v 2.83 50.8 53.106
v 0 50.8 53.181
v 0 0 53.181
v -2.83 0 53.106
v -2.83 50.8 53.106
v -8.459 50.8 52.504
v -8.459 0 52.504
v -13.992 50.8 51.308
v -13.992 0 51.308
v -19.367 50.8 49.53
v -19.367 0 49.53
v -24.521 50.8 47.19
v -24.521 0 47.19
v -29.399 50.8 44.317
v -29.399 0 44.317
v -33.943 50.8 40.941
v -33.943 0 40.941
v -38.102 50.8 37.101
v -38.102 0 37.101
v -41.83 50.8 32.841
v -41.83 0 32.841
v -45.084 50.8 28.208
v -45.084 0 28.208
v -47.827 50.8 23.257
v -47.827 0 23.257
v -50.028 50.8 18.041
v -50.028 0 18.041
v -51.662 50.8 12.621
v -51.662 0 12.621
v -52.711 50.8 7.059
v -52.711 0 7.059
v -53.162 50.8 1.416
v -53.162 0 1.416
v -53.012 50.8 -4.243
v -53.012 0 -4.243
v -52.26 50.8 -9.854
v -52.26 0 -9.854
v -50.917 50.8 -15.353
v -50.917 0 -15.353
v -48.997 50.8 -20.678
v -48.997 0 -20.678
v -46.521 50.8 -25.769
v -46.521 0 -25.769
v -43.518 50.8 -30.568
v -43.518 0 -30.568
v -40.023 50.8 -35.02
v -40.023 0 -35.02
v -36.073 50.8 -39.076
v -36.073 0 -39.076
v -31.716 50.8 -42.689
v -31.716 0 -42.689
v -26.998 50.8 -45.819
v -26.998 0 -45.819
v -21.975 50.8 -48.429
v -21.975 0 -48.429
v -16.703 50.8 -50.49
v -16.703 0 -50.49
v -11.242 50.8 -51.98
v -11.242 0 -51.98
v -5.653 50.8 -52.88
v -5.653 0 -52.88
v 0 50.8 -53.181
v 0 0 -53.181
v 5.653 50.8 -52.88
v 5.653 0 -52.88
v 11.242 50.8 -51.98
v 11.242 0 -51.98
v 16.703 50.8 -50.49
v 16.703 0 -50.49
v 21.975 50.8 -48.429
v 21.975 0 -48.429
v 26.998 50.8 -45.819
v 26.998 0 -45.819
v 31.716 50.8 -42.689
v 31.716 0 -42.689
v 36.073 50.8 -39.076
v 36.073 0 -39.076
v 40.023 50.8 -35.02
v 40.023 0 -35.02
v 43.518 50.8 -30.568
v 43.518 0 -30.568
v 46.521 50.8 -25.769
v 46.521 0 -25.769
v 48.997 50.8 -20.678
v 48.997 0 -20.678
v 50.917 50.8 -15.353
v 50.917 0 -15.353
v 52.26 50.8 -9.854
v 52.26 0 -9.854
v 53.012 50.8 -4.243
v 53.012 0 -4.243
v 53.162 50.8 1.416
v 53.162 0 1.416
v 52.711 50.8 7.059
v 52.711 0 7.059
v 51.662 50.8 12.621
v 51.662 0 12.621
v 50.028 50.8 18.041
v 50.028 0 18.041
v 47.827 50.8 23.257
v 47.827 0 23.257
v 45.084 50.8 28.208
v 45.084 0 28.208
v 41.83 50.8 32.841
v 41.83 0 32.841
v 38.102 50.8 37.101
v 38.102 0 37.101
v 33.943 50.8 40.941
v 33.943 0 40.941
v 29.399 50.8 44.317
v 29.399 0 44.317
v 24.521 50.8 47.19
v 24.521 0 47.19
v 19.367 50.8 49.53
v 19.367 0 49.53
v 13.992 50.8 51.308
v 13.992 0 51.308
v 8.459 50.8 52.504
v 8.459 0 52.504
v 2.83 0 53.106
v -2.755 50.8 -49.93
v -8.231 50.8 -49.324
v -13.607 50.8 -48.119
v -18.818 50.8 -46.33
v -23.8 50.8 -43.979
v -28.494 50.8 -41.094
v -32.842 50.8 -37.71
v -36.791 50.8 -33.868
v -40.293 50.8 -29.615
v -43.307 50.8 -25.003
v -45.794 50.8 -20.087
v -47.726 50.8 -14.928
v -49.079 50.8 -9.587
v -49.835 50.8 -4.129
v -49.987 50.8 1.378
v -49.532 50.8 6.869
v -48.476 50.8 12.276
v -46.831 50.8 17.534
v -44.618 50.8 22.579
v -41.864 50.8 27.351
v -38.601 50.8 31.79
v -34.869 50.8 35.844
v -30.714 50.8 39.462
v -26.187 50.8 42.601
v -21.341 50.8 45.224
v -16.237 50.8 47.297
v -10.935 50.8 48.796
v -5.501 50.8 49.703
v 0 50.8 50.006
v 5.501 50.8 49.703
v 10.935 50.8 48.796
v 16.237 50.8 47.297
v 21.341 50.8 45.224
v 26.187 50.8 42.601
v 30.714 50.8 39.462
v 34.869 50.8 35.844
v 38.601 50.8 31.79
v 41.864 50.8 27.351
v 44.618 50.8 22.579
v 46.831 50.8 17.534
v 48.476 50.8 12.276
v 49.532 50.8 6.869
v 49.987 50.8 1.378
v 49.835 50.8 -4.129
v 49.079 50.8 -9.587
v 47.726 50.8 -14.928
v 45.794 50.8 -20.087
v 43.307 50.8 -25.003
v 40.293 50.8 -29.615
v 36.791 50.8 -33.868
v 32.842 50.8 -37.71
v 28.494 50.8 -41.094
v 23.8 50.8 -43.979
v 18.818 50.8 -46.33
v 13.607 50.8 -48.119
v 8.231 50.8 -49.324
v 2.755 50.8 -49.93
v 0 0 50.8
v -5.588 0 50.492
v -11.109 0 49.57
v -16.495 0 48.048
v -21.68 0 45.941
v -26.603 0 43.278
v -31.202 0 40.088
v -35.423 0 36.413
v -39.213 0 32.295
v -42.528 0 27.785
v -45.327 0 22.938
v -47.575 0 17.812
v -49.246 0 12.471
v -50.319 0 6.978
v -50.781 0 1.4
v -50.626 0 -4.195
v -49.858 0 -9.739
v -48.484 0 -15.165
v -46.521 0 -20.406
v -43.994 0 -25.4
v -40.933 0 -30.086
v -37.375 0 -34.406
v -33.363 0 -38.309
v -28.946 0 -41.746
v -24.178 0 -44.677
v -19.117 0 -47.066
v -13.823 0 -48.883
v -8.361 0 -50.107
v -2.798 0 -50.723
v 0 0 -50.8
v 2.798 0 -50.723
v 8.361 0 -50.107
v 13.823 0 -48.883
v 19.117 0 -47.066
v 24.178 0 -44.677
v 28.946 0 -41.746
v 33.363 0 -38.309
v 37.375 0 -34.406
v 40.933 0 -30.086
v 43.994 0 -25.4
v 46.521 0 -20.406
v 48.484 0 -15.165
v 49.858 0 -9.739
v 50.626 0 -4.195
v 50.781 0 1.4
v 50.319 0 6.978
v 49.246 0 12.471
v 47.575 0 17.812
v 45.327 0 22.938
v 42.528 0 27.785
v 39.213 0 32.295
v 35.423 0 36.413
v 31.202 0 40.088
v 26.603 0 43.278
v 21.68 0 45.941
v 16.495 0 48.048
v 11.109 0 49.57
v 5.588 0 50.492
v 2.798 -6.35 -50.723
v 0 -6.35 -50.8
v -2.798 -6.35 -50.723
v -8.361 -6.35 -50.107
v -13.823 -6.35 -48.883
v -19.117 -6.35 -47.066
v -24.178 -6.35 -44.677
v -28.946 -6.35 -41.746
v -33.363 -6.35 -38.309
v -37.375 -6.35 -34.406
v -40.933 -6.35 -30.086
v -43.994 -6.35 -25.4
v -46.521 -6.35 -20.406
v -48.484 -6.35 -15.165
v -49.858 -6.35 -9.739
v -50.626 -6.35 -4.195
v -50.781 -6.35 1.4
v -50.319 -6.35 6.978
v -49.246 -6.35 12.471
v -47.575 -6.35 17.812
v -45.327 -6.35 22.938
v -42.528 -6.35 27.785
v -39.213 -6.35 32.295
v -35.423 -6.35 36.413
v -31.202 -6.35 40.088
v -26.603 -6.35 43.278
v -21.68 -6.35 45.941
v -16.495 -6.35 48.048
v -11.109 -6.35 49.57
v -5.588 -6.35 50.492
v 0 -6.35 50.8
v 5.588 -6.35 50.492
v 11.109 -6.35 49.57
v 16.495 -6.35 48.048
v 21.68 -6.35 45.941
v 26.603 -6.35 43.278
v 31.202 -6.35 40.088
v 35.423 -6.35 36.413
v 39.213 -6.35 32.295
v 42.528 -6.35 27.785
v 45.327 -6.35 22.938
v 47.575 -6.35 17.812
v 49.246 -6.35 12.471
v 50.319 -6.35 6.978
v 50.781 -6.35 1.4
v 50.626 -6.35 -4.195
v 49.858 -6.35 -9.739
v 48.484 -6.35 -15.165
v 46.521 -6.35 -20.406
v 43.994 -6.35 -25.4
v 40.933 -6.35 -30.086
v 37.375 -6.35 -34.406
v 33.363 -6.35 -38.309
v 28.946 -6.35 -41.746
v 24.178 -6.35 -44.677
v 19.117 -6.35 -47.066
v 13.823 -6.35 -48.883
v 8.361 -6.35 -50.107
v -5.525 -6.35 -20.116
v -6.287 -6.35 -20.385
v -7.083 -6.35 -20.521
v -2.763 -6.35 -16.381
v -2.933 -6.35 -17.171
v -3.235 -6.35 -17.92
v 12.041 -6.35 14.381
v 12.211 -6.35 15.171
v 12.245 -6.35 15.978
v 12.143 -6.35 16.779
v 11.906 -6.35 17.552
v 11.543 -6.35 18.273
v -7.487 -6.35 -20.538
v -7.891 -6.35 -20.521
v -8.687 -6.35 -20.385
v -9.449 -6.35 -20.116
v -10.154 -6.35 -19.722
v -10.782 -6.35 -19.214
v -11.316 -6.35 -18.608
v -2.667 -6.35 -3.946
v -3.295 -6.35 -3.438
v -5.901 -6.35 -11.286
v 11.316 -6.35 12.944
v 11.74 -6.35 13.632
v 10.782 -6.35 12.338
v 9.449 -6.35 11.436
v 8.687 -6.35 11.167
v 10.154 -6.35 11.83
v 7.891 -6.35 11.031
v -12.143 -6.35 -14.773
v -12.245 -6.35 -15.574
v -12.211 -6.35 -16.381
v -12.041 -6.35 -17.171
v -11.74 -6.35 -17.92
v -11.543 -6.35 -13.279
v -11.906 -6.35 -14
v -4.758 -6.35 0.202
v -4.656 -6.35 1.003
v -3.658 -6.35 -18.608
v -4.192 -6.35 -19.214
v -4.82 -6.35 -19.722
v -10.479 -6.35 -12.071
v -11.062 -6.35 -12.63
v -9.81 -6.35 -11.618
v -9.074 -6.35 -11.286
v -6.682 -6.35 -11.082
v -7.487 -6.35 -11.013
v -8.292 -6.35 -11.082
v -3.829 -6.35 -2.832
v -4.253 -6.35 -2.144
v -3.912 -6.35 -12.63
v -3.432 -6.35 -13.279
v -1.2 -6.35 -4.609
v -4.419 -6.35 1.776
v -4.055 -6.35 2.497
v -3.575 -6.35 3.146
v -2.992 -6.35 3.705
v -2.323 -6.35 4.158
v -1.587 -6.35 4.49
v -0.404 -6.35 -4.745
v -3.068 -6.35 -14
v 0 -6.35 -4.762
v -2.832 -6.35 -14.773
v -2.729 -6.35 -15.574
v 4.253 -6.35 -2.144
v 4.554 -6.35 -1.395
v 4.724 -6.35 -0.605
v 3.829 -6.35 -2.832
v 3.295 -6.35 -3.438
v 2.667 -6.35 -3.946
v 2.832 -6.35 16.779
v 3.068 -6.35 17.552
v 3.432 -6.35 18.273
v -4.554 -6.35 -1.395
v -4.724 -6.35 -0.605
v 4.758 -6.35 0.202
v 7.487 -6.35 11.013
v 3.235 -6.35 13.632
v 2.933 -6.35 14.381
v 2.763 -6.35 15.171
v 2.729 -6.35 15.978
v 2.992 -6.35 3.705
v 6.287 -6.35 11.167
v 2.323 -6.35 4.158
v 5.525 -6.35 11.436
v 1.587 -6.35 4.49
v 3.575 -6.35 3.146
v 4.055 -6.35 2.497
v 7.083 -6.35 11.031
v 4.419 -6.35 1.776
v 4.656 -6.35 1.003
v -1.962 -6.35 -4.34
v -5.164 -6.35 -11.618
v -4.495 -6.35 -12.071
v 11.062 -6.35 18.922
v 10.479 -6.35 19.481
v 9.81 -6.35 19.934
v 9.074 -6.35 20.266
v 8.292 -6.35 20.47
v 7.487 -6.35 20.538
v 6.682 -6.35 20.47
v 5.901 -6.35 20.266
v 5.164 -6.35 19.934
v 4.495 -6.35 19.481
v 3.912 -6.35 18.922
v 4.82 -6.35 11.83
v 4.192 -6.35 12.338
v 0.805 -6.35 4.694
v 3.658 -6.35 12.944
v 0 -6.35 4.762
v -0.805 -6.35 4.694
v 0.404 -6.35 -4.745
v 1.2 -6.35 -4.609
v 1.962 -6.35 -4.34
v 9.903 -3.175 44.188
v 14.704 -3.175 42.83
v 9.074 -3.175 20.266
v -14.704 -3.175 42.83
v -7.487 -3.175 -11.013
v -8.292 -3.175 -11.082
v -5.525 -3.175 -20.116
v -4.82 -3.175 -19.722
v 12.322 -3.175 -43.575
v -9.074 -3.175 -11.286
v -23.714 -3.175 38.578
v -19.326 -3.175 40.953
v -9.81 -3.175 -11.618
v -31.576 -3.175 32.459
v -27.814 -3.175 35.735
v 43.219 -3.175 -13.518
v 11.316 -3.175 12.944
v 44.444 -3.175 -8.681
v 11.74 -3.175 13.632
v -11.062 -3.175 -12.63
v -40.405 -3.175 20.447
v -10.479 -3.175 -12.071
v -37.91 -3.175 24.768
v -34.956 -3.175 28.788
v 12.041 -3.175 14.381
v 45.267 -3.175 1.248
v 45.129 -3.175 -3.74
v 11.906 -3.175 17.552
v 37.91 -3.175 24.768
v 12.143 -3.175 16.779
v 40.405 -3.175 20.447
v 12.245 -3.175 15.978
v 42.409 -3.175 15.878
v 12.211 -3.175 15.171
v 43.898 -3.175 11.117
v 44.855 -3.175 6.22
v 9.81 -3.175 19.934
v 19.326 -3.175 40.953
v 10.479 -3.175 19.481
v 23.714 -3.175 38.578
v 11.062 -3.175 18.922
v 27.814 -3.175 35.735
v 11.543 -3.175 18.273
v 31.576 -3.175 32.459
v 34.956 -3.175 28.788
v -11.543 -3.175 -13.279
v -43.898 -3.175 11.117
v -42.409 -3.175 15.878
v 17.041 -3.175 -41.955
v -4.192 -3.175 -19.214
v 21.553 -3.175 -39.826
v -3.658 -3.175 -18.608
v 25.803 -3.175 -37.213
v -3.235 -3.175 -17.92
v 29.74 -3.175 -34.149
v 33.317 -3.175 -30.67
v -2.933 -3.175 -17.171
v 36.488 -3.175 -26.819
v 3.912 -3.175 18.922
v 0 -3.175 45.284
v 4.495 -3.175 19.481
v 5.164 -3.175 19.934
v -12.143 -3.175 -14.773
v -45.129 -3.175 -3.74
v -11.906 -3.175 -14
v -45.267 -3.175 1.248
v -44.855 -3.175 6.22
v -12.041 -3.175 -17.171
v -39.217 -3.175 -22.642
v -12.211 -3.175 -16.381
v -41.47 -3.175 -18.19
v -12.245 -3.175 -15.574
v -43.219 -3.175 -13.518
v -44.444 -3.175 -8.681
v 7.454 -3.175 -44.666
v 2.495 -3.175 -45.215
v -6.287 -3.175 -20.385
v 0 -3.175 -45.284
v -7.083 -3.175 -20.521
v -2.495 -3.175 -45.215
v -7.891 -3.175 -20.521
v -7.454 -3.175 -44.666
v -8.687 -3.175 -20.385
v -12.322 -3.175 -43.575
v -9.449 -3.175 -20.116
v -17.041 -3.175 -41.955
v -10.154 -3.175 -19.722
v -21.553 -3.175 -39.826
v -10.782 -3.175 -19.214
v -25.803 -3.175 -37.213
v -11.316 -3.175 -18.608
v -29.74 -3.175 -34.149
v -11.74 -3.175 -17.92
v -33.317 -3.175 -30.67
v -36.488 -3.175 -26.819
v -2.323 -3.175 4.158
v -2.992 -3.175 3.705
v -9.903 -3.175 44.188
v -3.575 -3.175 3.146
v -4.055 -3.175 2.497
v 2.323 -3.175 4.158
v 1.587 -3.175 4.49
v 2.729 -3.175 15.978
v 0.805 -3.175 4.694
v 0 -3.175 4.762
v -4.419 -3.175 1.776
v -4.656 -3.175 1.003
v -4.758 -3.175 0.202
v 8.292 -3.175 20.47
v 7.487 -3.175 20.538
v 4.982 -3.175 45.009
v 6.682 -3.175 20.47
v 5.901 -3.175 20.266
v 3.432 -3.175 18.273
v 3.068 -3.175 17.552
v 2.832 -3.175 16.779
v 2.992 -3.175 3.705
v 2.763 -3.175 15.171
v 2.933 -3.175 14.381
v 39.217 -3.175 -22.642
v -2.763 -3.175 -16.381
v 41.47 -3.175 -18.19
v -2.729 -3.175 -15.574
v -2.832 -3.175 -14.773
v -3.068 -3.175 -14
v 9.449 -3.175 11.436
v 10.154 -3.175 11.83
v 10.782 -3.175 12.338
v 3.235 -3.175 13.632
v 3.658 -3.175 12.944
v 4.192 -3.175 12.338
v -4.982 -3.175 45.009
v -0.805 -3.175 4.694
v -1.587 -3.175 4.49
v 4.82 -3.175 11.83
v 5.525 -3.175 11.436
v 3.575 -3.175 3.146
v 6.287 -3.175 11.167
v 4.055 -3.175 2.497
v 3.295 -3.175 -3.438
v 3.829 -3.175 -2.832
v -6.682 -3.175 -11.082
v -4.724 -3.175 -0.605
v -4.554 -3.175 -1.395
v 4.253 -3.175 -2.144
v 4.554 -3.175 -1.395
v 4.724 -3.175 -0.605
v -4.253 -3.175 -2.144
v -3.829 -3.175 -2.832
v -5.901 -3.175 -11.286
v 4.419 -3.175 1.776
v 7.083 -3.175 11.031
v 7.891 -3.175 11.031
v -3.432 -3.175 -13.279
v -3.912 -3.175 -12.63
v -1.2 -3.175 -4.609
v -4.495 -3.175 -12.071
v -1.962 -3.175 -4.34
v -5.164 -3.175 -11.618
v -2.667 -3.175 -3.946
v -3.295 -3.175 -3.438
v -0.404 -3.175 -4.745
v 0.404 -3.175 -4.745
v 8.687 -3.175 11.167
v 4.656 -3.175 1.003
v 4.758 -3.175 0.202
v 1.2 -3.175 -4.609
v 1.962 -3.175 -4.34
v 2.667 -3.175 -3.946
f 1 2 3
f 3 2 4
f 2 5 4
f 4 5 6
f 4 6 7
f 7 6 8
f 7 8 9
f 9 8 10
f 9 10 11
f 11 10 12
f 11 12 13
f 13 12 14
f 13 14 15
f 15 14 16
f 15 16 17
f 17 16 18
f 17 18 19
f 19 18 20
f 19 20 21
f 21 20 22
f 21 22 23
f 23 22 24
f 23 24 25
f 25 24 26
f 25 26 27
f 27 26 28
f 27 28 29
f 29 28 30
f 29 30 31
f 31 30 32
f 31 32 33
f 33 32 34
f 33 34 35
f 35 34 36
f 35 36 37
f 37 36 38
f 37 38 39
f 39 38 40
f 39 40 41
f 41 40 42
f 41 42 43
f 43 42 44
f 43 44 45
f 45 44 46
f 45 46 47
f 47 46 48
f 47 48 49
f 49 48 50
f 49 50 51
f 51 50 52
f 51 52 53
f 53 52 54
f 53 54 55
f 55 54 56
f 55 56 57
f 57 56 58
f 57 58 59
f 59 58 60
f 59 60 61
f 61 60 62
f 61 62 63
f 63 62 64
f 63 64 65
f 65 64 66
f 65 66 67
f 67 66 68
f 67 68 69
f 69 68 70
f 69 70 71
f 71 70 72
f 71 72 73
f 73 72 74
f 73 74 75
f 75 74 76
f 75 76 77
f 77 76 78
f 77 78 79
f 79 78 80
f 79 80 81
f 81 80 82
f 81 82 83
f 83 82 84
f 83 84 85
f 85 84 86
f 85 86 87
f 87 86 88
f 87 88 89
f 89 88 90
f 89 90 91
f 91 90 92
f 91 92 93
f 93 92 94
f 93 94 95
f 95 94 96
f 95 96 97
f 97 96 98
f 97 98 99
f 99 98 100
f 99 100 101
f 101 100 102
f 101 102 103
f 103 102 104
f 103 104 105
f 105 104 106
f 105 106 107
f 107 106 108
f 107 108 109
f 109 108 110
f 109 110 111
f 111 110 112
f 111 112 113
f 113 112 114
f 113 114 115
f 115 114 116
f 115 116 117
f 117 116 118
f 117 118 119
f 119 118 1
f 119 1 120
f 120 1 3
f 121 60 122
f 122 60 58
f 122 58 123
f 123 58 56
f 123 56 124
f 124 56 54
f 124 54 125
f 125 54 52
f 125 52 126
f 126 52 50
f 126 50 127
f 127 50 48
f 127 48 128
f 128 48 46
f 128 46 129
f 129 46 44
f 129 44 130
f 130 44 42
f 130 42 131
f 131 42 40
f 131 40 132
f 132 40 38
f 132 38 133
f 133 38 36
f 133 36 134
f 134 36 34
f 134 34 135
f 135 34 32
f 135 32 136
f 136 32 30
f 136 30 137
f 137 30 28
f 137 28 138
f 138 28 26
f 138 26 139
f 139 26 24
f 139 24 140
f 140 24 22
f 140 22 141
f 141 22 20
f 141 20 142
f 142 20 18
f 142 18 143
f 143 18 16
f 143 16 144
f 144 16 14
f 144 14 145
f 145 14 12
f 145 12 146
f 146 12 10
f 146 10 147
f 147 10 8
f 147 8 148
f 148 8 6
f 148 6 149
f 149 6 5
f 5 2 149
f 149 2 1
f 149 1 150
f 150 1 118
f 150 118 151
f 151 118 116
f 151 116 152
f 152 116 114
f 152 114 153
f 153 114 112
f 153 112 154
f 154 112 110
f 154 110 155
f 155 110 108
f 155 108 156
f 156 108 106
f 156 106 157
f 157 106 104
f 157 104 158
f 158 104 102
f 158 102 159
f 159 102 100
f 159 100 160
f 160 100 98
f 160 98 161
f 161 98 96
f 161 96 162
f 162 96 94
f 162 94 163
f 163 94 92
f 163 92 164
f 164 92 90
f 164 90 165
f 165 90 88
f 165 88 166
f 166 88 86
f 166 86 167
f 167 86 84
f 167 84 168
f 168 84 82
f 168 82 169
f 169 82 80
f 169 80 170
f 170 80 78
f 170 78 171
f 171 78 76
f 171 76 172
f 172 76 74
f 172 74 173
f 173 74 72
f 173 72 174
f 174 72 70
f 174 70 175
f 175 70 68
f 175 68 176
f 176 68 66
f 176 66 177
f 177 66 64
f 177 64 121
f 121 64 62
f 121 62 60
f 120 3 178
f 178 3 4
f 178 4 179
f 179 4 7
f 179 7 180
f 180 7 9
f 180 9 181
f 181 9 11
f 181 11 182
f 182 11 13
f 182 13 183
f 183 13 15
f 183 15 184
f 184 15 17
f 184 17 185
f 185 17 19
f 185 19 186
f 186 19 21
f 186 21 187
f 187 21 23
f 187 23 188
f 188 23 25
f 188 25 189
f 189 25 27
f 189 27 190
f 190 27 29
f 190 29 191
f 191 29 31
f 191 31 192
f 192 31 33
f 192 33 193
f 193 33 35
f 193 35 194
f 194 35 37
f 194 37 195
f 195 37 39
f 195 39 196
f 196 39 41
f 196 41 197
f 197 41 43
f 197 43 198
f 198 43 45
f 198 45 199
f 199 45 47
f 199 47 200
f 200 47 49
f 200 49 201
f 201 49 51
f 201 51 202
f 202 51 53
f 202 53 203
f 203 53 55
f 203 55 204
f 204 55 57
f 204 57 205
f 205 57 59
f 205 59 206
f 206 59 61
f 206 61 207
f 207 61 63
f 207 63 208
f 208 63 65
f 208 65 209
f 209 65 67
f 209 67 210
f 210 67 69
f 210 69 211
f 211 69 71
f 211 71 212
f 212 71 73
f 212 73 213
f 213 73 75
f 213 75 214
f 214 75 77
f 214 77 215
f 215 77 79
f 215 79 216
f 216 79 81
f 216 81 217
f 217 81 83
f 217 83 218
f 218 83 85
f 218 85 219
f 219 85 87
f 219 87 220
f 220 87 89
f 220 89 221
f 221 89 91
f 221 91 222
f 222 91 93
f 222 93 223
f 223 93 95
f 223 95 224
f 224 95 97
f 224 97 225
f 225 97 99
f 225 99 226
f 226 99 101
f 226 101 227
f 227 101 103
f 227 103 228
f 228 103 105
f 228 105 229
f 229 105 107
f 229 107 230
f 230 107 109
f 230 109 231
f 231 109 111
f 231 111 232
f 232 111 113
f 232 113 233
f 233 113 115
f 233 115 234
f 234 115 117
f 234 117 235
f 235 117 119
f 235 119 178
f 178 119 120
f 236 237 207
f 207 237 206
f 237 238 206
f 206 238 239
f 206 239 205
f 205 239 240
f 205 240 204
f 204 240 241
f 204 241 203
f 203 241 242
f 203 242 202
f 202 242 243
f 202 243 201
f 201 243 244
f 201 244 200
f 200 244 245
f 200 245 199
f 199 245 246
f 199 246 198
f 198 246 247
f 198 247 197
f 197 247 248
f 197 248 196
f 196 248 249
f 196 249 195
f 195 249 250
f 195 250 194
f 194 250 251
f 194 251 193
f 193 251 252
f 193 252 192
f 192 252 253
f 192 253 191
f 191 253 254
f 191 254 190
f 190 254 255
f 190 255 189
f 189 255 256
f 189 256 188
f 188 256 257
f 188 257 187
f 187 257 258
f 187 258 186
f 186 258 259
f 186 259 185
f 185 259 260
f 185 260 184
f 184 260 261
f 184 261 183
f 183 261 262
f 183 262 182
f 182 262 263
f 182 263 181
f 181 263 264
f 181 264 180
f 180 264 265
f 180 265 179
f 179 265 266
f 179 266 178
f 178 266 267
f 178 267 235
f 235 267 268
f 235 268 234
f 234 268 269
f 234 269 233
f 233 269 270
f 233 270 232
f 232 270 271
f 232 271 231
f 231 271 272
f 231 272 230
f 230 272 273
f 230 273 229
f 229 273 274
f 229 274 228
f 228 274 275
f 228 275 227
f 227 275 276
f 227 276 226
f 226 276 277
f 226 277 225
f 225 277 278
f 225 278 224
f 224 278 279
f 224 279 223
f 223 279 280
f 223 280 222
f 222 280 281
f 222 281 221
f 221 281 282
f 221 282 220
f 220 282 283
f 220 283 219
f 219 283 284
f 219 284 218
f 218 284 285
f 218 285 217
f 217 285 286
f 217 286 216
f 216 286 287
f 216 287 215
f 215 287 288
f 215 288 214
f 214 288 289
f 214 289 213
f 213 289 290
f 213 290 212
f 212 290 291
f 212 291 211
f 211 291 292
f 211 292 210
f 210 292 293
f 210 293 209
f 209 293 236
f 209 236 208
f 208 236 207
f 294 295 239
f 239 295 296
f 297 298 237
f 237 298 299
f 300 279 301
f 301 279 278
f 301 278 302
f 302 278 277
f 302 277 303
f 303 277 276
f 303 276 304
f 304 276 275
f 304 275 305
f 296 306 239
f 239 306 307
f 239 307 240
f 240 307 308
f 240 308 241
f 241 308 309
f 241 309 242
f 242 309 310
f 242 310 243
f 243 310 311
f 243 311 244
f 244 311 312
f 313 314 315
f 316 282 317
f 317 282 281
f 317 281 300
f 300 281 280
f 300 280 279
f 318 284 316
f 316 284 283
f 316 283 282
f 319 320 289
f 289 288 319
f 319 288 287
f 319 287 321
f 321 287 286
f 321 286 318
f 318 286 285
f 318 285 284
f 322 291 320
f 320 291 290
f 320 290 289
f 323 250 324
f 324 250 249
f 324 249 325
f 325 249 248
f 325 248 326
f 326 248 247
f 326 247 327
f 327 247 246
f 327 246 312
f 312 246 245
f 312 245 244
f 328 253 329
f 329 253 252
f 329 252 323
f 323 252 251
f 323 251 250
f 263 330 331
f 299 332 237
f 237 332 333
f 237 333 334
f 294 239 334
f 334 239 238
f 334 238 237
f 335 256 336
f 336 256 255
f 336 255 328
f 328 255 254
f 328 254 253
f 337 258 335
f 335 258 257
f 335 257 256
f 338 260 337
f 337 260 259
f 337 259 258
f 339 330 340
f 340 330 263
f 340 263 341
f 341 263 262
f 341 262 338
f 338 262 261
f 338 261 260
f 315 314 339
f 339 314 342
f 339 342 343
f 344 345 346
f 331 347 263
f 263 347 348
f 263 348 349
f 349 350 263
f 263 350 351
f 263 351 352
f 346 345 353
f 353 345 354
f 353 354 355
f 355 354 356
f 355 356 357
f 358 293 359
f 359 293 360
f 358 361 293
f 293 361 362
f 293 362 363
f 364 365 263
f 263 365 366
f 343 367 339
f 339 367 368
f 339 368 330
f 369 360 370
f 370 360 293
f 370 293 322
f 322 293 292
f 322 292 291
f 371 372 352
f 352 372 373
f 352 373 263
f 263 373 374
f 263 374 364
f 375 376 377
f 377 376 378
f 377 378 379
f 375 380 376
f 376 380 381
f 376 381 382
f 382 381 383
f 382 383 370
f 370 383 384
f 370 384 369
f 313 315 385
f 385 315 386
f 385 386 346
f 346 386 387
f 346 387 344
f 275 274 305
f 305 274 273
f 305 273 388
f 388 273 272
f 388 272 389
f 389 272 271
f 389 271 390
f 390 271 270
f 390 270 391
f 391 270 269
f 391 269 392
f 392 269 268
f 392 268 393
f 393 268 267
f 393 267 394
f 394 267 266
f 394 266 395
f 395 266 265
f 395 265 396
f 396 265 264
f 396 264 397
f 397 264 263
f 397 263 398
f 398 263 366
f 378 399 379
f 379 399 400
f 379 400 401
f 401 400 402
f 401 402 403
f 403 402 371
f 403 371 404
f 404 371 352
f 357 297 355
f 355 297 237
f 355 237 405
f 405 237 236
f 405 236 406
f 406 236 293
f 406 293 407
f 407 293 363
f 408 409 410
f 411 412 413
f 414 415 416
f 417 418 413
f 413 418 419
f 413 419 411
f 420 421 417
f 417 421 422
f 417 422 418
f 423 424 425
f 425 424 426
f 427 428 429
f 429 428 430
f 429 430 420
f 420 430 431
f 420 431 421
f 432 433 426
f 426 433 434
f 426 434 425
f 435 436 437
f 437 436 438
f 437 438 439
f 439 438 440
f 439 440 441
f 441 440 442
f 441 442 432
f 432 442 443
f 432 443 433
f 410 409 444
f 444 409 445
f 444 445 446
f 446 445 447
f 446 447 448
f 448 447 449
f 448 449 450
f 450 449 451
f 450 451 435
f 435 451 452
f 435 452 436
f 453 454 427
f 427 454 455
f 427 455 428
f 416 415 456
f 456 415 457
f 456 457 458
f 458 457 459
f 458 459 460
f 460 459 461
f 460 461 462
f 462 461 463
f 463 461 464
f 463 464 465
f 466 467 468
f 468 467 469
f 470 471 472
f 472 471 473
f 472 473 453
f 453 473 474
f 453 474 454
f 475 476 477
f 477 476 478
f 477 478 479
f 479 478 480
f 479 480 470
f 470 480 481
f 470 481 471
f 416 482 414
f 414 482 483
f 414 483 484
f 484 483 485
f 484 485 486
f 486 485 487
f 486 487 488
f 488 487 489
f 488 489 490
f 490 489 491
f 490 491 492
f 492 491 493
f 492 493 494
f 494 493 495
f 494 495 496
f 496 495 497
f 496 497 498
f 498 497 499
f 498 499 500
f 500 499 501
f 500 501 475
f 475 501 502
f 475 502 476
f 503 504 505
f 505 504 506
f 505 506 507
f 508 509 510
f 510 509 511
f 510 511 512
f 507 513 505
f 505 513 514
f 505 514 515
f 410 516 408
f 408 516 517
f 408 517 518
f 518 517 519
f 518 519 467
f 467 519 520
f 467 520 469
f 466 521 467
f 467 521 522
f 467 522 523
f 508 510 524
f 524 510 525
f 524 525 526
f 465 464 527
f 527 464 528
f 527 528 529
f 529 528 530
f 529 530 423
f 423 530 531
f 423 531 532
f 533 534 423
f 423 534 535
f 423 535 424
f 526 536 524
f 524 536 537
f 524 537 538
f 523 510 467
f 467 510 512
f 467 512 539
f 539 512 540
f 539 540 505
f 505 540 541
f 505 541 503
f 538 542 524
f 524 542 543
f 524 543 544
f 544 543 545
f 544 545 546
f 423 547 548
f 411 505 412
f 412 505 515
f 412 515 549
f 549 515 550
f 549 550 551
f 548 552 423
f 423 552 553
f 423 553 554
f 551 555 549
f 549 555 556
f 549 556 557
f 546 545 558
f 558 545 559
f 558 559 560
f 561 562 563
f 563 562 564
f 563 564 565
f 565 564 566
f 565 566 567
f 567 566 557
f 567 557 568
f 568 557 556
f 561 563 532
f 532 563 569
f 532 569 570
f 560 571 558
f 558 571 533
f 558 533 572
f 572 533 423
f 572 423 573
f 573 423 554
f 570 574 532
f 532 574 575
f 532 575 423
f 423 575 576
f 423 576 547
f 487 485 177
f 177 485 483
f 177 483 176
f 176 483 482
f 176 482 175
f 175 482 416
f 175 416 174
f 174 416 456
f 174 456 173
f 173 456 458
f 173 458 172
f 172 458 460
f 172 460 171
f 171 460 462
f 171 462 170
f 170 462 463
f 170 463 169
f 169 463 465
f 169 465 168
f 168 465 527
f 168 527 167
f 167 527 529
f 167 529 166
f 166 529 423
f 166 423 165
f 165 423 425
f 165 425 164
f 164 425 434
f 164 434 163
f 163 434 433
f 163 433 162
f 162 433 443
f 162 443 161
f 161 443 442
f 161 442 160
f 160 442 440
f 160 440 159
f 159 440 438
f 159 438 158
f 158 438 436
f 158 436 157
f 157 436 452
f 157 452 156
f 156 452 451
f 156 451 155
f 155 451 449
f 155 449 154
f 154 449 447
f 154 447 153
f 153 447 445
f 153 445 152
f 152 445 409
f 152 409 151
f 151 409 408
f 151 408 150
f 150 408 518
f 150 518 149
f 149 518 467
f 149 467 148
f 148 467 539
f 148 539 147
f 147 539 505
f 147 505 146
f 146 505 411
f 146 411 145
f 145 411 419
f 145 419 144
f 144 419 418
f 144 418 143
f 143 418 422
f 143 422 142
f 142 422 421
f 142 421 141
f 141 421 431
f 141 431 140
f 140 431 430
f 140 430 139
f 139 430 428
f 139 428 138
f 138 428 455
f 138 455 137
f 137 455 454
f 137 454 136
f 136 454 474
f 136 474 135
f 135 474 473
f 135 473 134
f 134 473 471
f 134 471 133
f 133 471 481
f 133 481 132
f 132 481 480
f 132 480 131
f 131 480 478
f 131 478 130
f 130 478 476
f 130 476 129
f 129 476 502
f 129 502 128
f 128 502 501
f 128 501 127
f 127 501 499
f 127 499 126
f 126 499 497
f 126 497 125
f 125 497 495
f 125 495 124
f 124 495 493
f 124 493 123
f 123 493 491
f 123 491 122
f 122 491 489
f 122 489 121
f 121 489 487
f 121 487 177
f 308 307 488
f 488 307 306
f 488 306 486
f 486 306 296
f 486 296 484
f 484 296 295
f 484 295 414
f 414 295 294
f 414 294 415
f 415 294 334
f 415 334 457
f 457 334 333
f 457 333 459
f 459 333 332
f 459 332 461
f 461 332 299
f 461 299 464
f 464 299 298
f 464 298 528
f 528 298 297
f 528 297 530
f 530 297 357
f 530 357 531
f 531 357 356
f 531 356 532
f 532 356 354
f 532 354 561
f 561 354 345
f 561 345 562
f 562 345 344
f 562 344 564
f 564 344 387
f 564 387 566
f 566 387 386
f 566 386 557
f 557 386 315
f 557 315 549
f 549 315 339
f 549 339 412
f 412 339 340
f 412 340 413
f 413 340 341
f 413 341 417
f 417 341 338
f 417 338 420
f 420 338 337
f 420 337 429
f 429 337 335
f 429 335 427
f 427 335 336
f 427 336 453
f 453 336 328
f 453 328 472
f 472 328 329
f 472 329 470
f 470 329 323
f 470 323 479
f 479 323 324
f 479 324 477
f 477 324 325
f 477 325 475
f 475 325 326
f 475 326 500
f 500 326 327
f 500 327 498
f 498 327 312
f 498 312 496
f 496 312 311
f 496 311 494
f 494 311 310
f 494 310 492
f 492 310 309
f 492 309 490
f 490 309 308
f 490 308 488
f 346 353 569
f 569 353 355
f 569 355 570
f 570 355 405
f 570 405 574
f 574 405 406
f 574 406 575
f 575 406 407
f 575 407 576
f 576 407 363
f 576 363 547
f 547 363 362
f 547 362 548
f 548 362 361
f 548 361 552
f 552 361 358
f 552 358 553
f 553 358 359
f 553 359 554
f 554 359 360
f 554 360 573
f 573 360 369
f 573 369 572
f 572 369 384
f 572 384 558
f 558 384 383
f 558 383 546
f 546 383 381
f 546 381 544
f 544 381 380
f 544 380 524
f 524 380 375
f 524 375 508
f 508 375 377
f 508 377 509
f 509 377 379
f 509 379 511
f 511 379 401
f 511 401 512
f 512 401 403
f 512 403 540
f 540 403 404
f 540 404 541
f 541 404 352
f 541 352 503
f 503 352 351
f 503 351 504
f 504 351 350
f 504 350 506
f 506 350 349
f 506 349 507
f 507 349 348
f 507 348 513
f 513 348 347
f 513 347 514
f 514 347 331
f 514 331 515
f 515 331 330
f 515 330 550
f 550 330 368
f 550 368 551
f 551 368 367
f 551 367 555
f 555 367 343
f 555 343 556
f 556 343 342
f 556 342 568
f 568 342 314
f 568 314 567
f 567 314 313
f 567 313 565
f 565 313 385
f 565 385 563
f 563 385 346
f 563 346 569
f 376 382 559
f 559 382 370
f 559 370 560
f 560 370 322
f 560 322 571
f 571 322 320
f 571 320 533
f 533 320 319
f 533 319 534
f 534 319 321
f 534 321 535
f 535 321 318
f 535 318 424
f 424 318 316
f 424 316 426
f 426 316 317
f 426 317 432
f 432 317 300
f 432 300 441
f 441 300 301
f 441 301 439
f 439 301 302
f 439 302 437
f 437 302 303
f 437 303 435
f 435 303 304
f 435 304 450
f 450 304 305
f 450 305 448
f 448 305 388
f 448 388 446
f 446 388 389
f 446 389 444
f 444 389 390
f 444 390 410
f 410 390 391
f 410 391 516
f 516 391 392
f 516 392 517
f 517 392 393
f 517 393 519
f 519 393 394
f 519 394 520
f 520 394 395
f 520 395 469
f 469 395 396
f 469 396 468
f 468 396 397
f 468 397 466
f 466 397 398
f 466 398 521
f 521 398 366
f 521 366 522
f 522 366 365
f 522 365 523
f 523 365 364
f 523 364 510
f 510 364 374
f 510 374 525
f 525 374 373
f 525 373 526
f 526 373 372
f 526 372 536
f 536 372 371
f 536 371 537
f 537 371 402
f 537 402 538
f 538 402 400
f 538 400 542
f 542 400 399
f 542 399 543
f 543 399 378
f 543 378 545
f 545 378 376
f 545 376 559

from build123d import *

# Parameters (mm, degrees)
SKETCH1_R           = 53.18125
BOSS_EXTRUDE1_DEPTH = 50.8
SKETCH2_R           = 50.8
SKETCH2_R_2         = 47.625
BOSS_EXTRUDE2_DEPTH = 6.35
SKETCH3_R           = 50.00625
CUT_EXTRUDE1_DEPTH  = 53.975
CUT_EXTRUDE1_DRAFT  = -5
SKETCH4_R           = 4.7625
CUT_EXTRUDE3_DEPTH  = 3.175


with BuildPart() as part:
    # Sketch1 → Boss-Extrude1 (new body)
    with BuildSketch(Plane(origin=(0, 0, 0), x_dir=(1, 0, 0), z_dir=(0, 1, 0))):
        with Locations(Location((0, 0, 0), (0, 0, 270))):
            Circle(SKETCH1_R)
    extrude(amount=BOSS_EXTRUDE1_DEPTH)

    # Sketch2 → Boss-Extrude2 (add)
    with BuildSketch(Plane.XZ):
        with Locations(Location((0, 0, 0), (0, 0, 270))):
            Circle(SKETCH2_R)
        Circle(SKETCH2_R_2, mode=Mode.SUBTRACT)
        Circle(SKETCH2_R_2)
    extrude(amount=BOSS_EXTRUDE2_DEPTH)


with BuildPart() as cut_extrude1_tool:
    # Sketch3 → Cut-Extrude1 (with draft: the straight prism first)
    with BuildSketch(Plane(origin=(0, 50.8, 0), x_dir=(1, 0, 0), z_dir=(0, 1, 0))):
        Circle(SKETCH3_R)
    extrude(amount=-CUT_EXTRUDE1_DEPTH)
    # Cut-Extrude1: the draft: its side faces are tilted about the plane it starts from
    cut_extrude1_sides = [cut_extrude1_tool.faces().sort_by_distance(p)[0] for p in [
        (-50.00625, 23.8125, 0),
    ]]
    draft(cut_extrude1_sides, Plane(origin=(0, 50.8, 0), x_dir=(1, 0, 0), z_dir=(0, 1, 0)), CUT_EXTRUDE1_DRAFT)


with BuildPart() as part_1:
    add(part.part)

    # Cut-Extrude1: cut by cut_extrude1_tool
    add(cut_extrude1_tool.part, mode=Mode.SUBTRACT)

    # Sketch4 → Cut-Extrude3 (cut)
    with BuildSketch(Plane(origin=(0, -3.175, 0), x_dir=(1, 0, 0), z_dir=(0, 1, 0))):
        with Locations(Location((7.487131795, -15.775986934, 0), (0, 0, 270))):
            Circle(SKETCH4_R)
        with Locations(Location((0, 0, 0), (0, 0, 270))):
            Circle(SKETCH4_R)
        with Locations(Location((-7.487131795, 15.775986934, 0), (0, 0, 270))):
            Circle(SKETCH4_R)
    extrude(amount=-CUT_EXTRUDE3_DEPTH, mode=Mode.SUBTRACT)


solid = part_1.part
